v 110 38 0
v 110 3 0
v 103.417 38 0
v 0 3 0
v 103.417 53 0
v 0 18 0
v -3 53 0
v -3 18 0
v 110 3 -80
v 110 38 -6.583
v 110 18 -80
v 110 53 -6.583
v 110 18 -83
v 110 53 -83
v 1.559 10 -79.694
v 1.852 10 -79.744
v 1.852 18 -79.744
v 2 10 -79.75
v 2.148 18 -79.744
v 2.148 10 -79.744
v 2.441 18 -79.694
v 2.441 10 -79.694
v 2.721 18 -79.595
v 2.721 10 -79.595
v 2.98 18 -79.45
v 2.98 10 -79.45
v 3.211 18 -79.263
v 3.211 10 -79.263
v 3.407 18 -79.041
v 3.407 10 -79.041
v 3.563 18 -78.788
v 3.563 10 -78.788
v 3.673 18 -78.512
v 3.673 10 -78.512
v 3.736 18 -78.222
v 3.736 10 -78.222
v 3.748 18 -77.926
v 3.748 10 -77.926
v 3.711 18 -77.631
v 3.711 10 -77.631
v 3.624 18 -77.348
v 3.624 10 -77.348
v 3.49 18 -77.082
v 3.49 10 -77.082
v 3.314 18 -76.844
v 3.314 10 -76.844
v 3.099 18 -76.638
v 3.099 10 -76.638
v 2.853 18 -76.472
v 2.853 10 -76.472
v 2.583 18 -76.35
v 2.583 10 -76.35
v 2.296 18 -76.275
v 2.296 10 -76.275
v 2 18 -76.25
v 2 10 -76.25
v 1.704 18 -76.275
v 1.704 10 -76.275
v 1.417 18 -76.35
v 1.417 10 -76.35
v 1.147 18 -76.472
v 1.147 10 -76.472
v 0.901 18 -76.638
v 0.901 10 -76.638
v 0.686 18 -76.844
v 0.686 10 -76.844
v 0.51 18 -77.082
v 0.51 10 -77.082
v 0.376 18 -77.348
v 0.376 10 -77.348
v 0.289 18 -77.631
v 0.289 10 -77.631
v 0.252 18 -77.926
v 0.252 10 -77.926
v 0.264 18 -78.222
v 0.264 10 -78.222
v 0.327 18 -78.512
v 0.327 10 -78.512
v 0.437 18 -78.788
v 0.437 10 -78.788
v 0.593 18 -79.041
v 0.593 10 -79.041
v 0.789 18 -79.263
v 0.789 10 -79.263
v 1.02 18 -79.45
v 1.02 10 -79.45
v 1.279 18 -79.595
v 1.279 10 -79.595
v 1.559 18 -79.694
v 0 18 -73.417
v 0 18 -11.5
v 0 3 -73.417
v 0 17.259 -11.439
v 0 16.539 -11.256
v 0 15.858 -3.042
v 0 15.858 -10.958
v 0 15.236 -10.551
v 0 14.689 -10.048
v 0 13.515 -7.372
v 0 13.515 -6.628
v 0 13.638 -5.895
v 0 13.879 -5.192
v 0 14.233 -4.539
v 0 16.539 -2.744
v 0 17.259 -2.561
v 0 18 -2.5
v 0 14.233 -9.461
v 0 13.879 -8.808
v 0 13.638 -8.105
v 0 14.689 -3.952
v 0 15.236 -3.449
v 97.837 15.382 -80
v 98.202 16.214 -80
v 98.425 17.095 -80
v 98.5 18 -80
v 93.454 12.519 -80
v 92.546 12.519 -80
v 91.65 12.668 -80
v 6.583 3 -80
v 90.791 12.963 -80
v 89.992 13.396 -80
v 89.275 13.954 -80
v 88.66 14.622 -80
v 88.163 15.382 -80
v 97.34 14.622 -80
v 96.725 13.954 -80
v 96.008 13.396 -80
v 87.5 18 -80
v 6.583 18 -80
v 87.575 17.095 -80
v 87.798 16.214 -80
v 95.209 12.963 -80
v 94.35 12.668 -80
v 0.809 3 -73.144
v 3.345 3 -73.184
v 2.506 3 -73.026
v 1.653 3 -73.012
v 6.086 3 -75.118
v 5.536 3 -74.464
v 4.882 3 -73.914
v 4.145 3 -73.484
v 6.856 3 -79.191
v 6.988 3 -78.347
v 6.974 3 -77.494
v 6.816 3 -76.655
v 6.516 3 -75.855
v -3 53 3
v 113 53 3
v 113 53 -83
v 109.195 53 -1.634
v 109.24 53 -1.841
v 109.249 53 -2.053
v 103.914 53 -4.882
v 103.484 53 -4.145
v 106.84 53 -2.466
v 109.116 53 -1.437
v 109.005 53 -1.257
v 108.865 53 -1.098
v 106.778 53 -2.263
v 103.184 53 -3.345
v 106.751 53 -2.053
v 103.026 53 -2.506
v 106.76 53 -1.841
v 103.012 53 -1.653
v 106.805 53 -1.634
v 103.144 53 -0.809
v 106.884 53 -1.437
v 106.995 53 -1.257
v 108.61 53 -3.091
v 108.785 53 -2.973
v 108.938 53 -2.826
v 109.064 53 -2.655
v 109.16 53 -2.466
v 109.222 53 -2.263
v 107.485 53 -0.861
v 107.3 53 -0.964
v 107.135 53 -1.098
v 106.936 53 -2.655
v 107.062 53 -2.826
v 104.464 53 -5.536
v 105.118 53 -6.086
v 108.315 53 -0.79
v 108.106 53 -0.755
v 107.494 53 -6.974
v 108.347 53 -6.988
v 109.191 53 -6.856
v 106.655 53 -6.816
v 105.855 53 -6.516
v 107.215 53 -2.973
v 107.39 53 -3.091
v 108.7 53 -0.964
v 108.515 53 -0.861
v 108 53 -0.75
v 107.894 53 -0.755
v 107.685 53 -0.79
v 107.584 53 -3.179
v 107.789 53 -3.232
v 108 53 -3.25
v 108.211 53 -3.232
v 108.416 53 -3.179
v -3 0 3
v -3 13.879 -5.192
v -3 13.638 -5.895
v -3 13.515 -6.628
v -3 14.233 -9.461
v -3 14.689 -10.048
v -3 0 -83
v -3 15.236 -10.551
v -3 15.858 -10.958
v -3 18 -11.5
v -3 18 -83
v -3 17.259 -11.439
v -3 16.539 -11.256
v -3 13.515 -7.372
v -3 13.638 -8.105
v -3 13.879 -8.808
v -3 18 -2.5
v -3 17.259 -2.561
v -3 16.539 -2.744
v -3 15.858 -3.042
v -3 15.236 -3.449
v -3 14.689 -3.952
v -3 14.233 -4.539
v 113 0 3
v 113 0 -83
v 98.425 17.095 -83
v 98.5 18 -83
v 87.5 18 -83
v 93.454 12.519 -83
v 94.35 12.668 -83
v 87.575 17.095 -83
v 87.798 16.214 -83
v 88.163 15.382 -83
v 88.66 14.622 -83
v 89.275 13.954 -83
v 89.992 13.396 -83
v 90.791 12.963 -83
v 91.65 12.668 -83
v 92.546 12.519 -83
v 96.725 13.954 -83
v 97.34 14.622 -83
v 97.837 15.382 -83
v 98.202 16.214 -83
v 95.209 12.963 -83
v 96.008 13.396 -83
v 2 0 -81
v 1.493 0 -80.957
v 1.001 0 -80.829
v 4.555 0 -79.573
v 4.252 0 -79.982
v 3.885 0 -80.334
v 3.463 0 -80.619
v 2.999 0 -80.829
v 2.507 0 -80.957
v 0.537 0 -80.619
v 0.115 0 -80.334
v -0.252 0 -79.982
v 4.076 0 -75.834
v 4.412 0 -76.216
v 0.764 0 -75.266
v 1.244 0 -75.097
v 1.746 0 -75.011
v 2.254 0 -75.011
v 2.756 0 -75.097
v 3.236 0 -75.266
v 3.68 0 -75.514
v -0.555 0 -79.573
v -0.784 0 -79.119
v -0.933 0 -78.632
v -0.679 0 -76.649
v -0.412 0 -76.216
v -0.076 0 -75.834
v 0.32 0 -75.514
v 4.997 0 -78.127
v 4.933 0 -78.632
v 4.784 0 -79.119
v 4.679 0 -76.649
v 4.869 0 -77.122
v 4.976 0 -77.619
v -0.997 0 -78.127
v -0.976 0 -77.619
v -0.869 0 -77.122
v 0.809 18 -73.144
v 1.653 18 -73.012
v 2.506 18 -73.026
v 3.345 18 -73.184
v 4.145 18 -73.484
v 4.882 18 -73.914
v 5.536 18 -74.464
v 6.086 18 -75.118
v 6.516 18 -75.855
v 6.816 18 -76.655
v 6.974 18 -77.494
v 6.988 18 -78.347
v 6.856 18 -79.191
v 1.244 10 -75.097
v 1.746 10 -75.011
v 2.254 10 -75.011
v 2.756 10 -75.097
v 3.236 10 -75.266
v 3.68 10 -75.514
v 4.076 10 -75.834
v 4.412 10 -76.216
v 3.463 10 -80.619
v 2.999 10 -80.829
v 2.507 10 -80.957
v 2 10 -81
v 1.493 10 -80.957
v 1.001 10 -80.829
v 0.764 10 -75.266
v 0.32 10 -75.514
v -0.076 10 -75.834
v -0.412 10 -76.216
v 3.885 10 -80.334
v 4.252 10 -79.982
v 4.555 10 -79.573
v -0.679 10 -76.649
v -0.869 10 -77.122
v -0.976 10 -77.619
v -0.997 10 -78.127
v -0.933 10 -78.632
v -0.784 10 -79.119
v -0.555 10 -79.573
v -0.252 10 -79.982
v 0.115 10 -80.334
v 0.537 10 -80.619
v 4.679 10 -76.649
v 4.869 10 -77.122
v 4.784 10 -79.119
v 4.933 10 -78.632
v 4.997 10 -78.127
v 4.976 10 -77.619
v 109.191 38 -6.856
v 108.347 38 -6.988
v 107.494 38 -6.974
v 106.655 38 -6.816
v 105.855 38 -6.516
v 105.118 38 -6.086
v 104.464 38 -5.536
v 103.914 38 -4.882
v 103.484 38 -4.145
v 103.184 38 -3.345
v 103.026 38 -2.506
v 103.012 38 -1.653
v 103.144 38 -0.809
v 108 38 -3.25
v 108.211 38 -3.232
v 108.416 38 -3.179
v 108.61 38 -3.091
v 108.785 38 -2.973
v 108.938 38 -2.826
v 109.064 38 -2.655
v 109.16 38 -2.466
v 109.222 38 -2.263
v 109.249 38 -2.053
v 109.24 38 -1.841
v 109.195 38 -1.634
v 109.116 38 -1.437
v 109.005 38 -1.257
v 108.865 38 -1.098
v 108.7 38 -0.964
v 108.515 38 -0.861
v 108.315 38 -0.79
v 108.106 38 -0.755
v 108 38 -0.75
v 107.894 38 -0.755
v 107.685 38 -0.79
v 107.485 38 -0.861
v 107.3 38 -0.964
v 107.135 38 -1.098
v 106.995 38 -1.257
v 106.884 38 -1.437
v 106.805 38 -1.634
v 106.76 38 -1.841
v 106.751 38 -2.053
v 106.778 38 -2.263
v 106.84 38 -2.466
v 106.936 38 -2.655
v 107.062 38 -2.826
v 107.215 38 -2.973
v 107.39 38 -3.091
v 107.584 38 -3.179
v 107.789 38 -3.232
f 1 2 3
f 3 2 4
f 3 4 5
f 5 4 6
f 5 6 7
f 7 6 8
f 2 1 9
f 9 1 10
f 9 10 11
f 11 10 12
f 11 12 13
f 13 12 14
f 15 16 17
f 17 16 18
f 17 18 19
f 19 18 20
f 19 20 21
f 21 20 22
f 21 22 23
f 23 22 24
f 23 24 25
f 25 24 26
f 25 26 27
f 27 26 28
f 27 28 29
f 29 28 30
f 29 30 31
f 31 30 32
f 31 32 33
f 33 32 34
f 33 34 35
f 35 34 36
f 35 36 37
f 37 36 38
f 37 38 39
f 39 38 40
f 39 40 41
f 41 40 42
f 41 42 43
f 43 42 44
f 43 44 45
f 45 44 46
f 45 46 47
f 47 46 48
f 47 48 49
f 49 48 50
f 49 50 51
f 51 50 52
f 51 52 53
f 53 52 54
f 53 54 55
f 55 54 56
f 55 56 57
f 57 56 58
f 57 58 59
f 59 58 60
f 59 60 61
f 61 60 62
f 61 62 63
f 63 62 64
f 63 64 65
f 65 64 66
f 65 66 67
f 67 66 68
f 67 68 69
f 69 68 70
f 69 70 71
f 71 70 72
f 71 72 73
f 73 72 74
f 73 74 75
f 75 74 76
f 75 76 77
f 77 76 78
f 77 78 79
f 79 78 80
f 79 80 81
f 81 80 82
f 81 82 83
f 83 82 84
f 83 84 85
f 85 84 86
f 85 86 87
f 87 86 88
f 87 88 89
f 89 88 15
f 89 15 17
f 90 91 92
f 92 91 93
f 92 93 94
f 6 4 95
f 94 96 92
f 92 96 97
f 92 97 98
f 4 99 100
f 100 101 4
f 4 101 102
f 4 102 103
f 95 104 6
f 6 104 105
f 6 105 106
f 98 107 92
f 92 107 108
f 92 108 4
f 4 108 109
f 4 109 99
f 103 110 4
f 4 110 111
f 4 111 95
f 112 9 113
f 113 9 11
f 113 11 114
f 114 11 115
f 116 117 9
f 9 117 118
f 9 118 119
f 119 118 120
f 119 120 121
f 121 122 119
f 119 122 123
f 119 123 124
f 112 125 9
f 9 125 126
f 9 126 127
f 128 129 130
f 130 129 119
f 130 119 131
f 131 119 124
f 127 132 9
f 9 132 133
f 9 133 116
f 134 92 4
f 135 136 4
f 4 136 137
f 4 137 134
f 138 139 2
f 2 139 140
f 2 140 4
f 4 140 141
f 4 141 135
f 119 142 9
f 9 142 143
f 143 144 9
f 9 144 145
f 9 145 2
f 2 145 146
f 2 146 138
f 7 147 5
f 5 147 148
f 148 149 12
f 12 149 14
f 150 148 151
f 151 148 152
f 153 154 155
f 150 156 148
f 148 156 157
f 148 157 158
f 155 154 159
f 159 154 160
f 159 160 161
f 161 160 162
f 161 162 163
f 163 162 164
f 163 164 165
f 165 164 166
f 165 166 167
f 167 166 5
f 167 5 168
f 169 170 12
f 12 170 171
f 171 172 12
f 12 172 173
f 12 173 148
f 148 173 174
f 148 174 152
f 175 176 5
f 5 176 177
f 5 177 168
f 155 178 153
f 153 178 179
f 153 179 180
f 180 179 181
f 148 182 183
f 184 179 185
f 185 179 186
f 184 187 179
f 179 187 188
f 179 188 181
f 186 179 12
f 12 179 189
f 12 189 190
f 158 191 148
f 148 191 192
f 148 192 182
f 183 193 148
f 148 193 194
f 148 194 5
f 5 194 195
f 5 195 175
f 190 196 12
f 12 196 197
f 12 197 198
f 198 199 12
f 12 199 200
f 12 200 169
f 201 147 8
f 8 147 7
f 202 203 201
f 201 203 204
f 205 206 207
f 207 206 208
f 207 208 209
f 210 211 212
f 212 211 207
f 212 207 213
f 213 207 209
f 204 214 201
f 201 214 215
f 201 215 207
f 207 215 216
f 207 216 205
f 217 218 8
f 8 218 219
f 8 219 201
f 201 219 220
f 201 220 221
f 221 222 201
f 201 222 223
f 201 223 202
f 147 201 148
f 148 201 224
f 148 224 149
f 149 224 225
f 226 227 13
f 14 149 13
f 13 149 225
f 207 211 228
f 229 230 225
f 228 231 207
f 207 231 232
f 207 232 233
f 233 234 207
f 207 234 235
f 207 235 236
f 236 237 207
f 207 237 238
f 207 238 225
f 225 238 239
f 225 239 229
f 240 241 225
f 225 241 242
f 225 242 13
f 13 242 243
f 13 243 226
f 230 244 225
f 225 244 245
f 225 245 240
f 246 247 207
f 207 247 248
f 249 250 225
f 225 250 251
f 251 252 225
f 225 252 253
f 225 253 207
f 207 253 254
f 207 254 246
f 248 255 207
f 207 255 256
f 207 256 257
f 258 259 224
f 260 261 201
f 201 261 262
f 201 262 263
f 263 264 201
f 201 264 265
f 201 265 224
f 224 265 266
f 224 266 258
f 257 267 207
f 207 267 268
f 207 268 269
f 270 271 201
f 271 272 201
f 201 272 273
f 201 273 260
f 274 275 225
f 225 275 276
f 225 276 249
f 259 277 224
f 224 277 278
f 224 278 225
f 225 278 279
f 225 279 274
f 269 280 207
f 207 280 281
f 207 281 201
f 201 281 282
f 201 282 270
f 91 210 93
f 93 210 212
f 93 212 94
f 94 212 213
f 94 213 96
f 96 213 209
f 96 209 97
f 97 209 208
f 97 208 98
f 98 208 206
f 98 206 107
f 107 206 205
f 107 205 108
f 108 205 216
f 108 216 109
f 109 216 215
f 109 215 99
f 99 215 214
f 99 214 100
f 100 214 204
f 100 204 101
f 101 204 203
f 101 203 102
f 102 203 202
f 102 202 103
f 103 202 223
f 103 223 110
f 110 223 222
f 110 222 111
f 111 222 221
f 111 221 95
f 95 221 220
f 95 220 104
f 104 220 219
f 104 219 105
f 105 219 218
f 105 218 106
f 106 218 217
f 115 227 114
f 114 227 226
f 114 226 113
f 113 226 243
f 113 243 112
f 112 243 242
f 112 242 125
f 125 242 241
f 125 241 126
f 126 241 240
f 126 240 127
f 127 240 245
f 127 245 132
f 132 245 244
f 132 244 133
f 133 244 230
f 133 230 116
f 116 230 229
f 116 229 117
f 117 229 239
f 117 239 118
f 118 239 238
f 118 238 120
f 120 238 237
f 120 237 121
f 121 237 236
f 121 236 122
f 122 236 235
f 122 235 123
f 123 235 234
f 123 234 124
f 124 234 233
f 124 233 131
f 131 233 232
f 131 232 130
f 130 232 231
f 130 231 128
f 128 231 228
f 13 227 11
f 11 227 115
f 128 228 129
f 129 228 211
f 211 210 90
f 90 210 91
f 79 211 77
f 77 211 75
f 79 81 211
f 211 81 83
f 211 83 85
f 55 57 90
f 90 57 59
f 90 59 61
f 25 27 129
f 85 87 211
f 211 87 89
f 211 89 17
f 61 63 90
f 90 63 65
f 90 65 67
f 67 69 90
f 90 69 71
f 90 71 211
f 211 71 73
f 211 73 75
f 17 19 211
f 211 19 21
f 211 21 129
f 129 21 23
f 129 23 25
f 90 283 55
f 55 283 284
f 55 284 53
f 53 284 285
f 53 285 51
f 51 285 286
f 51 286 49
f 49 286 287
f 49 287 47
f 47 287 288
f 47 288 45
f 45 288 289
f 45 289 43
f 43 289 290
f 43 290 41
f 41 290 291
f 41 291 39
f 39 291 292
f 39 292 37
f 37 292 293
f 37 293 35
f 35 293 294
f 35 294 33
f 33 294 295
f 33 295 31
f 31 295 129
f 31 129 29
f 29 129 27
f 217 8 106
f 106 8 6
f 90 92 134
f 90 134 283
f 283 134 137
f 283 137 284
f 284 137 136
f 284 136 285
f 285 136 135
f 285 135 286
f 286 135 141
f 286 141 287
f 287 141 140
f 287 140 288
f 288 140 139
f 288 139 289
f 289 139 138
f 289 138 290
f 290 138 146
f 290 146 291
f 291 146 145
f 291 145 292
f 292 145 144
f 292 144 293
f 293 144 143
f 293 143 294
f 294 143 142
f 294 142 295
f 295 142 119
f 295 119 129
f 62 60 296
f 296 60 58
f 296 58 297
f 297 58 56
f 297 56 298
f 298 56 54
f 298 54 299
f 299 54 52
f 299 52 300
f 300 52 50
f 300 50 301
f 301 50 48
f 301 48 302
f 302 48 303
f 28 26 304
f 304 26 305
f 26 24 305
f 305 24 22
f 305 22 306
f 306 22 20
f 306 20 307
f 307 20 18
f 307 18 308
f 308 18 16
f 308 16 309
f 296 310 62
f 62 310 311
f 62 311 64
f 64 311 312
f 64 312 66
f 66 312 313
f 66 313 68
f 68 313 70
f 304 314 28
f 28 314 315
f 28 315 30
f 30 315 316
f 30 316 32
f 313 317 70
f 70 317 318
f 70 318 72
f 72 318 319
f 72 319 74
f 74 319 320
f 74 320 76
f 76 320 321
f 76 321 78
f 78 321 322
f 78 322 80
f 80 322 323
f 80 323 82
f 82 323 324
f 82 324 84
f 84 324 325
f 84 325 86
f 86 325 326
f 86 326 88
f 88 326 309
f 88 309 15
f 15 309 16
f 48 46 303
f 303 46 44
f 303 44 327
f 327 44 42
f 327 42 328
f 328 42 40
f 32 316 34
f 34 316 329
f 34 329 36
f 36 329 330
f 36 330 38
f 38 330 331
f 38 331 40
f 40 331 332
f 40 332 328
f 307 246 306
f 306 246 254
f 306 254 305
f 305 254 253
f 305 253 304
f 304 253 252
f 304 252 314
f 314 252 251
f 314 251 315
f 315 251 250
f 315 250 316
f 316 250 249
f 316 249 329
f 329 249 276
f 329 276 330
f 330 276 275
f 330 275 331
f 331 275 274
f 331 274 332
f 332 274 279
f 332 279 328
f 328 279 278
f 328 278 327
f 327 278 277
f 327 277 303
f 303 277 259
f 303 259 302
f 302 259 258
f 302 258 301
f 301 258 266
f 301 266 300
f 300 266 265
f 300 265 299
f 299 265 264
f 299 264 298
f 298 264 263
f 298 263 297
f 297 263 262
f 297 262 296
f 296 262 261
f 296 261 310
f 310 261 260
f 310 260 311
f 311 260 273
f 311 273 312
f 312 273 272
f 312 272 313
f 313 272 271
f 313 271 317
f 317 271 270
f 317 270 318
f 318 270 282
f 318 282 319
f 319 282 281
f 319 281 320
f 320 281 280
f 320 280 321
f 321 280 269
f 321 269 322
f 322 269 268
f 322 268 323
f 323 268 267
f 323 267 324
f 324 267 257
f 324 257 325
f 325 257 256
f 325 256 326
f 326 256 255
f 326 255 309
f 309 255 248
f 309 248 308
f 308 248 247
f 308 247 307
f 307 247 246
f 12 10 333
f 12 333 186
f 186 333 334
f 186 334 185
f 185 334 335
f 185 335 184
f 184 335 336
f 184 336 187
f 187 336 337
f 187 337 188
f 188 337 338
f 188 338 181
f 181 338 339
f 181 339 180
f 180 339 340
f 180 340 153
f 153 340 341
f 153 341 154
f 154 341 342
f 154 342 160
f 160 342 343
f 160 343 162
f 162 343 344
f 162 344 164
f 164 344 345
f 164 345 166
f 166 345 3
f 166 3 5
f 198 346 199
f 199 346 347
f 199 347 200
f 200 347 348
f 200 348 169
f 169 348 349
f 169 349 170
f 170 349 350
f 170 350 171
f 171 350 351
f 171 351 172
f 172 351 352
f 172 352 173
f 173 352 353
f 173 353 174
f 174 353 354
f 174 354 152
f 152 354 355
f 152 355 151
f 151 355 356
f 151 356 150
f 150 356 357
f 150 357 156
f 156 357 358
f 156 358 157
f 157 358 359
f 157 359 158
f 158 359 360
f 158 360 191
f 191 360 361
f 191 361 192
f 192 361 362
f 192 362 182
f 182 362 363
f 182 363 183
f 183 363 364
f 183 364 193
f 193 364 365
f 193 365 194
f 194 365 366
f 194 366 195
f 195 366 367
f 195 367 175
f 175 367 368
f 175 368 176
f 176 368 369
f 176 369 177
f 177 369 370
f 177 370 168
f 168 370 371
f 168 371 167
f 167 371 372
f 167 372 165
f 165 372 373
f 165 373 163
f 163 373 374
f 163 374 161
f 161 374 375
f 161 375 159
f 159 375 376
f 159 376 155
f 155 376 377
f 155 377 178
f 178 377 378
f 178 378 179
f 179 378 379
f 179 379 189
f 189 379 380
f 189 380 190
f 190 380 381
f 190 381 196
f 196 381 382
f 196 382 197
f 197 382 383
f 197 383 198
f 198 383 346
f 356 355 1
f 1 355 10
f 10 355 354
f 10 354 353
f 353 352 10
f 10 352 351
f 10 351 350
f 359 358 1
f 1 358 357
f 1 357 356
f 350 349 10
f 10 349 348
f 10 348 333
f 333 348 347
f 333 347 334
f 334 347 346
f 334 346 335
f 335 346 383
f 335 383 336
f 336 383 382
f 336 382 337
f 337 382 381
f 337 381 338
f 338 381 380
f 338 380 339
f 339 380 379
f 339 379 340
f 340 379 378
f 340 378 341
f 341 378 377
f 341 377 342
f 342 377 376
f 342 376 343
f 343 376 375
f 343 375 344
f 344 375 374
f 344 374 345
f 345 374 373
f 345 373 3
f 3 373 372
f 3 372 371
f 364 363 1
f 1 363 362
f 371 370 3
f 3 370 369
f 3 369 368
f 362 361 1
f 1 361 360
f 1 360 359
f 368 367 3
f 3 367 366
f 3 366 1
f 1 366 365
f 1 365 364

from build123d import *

# Parameters (mm, degrees)
SKETCH1_W           = 110
SKETCH1_H           = 80
BOSS_EXTRUDE1_DEPTH = 3
SKETCH1_3_W         = 116
SKETCH1_3_H         = 86
SKETCH1_3_W_2       = 110
SKETCH1_3_H_2       = 80
BOSS_EXTRUDE2_DEPTH = 53
SKETCH2_R           = 4.5
CUT_EXTRUDE1_DEPTH  = 53
SKETCH3_R           = 5.5
CUT_EXTRUDE2_DEPTH  = 53
SKETCH5_W           = 113
SKETCH5_H           = 35
CUT_EXTRUDE3_DEPTH  = 83
SKETCH6_R           = 5
BOSS_EXTRUDE3_DEPTH = 15
SKETCH8_R           = 1.75
CUT_EXTRUDE4_DEPTH  = 25
SKETCH9_R           = 3
CUT_EXTRUDE5_DEPTH  = 10
SKETCH10_R          = 5
SKETCH10_R_2        = 1.25
BOSS_EXTRUDE4_DEPTH = 50
SKETCH11_W          = 33.464657476
SKETCH11_H          = 24.968484897
CUT_EXTRUDE7_DEPTH  = 35


with BuildPart() as part:
    # Sketch1 → Boss-Extrude1 (new body)
    with BuildSketch(Plane(origin=(0, 0, 0), x_dir=(1, 0, 0), z_dir=(0, 1, 0))):
        with Locations((55, 40)):
            Rectangle(SKETCH1_W, SKETCH1_H)
    extrude(amount=BOSS_EXTRUDE1_DEPTH)

    # Sketch1<3> → Boss-Extrude2 (add)
    with BuildSketch(Plane(origin=(0, 0, 0), x_dir=(1, 0, 0), z_dir=(0, 1, 0))):
        with Locations((55, 40)):
            Rectangle(SKETCH1_3_W, SKETCH1_3_H)
        with Locations((55, 40)):
            Rectangle(SKETCH1_3_W_2, SKETCH1_3_H_2, mode=Mode.SUBTRACT)
    extrude(amount=BOSS_EXTRUDE2_DEPTH)

    # Sketch2 → Cut-Extrude1 (cut)
    with BuildSketch(Plane.ZY.offset(3)):
        with Locations((-7, 18)):
            Circle(SKETCH2_R)
    extrude(amount=-CUT_EXTRUDE1_DEPTH, mode=Mode.SUBTRACT)

    # Sketch3 → Cut-Extrude2 (cut)
    with BuildSketch(Plane(origin=(0, 0, -83), x_dir=(-1, 0, 0), z_dir=(0, 0, -1))):
        with Locations((-93, 18)):
            Circle(SKETCH3_R)
    extrude(amount=-CUT_EXTRUDE2_DEPTH, mode=Mode.SUBTRACT)

    # Sketch5 → Cut-Extrude3 (cut)
    with BuildSketch(Plane(origin=(0, 0, -83), x_dir=(-1, 0, 0), z_dir=(0, 0, -1))):
        with Locations((-53.5, 35.5)):
            Rectangle(SKETCH5_W, SKETCH5_H)
    extrude(amount=-CUT_EXTRUDE3_DEPTH, mode=Mode.SUBTRACT)

    # Sketch6 → Boss-Extrude3 (add)
    with BuildSketch(Plane(origin=(0, 3, 0), x_dir=(1, 0, 0), z_dir=(0, 1, 0))):
        with Locations((2, 78)):
            Circle(SKETCH6_R)
    extrude(amount=BOSS_EXTRUDE3_DEPTH)

    # Sketch8 → Cut-Extrude4 (cut)
    with BuildSketch(Plane(origin=(0, 18, 0), x_dir=(1, 0, 0), z_dir=(0, 1, 0))):
        with Locations((2, 78)):
            Circle(SKETCH8_R)
    extrude(amount=-CUT_EXTRUDE4_DEPTH, mode=Mode.SUBTRACT)

    # Sketch9 → Cut-Extrude5 (cut)
    with BuildSketch(Plane(origin=(0, 0, 0), x_dir=(-1, 0, 0), z_dir=(0, -1, 0))):
        with Locations((-2, 78)):
            Circle(SKETCH9_R)
    extrude(amount=-CUT_EXTRUDE5_DEPTH, mode=Mode.SUBTRACT)

    # Sketch10 → Boss-Extrude4 (add)
    with BuildSketch(Plane(origin=(0, 3, 0), x_dir=(1, 0, 0), z_dir=(0, 1, 0))):
        with Locations((108, 2)):
            Circle(SKETCH10_R)
        with Locations((108, 2)):
            Circle(SKETCH10_R_2, mode=Mode.SUBTRACT)
    extrude(amount=BOSS_EXTRUDE4_DEPTH)

    # Sketch11 → Cut-Extrude7 (cut)
    with BuildSketch(Plane(origin=(0, 3, 0), x_dir=(1, 0, 0), z_dir=(0, 1, 0))):
        with Locations((93.267671262, 12.484242449)):
            Rectangle(SKETCH11_W, SKETCH11_H)
    extrude(amount=CUT_EXTRUDE7_DEPTH, mode=Mode.SUBTRACT)


solid = part.part
